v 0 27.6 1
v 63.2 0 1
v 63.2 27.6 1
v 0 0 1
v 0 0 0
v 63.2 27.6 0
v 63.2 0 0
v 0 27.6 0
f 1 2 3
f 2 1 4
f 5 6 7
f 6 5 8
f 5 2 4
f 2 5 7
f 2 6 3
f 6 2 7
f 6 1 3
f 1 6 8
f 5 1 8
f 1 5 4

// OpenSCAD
/*
 * PROMPT: H0 scale (1:87) single-car garage right side wall panel, 63.2 mm wide x 27.6 mm tall x 1 mm thick, plain with no openings.
 */

$fn = 32;

panel_t = 1.0;

bld_d = 63.2;
bld_h = 27.6;

module wall_right() {
    cube([bld_d, bld_h, panel_t]);
}

wall_right();
